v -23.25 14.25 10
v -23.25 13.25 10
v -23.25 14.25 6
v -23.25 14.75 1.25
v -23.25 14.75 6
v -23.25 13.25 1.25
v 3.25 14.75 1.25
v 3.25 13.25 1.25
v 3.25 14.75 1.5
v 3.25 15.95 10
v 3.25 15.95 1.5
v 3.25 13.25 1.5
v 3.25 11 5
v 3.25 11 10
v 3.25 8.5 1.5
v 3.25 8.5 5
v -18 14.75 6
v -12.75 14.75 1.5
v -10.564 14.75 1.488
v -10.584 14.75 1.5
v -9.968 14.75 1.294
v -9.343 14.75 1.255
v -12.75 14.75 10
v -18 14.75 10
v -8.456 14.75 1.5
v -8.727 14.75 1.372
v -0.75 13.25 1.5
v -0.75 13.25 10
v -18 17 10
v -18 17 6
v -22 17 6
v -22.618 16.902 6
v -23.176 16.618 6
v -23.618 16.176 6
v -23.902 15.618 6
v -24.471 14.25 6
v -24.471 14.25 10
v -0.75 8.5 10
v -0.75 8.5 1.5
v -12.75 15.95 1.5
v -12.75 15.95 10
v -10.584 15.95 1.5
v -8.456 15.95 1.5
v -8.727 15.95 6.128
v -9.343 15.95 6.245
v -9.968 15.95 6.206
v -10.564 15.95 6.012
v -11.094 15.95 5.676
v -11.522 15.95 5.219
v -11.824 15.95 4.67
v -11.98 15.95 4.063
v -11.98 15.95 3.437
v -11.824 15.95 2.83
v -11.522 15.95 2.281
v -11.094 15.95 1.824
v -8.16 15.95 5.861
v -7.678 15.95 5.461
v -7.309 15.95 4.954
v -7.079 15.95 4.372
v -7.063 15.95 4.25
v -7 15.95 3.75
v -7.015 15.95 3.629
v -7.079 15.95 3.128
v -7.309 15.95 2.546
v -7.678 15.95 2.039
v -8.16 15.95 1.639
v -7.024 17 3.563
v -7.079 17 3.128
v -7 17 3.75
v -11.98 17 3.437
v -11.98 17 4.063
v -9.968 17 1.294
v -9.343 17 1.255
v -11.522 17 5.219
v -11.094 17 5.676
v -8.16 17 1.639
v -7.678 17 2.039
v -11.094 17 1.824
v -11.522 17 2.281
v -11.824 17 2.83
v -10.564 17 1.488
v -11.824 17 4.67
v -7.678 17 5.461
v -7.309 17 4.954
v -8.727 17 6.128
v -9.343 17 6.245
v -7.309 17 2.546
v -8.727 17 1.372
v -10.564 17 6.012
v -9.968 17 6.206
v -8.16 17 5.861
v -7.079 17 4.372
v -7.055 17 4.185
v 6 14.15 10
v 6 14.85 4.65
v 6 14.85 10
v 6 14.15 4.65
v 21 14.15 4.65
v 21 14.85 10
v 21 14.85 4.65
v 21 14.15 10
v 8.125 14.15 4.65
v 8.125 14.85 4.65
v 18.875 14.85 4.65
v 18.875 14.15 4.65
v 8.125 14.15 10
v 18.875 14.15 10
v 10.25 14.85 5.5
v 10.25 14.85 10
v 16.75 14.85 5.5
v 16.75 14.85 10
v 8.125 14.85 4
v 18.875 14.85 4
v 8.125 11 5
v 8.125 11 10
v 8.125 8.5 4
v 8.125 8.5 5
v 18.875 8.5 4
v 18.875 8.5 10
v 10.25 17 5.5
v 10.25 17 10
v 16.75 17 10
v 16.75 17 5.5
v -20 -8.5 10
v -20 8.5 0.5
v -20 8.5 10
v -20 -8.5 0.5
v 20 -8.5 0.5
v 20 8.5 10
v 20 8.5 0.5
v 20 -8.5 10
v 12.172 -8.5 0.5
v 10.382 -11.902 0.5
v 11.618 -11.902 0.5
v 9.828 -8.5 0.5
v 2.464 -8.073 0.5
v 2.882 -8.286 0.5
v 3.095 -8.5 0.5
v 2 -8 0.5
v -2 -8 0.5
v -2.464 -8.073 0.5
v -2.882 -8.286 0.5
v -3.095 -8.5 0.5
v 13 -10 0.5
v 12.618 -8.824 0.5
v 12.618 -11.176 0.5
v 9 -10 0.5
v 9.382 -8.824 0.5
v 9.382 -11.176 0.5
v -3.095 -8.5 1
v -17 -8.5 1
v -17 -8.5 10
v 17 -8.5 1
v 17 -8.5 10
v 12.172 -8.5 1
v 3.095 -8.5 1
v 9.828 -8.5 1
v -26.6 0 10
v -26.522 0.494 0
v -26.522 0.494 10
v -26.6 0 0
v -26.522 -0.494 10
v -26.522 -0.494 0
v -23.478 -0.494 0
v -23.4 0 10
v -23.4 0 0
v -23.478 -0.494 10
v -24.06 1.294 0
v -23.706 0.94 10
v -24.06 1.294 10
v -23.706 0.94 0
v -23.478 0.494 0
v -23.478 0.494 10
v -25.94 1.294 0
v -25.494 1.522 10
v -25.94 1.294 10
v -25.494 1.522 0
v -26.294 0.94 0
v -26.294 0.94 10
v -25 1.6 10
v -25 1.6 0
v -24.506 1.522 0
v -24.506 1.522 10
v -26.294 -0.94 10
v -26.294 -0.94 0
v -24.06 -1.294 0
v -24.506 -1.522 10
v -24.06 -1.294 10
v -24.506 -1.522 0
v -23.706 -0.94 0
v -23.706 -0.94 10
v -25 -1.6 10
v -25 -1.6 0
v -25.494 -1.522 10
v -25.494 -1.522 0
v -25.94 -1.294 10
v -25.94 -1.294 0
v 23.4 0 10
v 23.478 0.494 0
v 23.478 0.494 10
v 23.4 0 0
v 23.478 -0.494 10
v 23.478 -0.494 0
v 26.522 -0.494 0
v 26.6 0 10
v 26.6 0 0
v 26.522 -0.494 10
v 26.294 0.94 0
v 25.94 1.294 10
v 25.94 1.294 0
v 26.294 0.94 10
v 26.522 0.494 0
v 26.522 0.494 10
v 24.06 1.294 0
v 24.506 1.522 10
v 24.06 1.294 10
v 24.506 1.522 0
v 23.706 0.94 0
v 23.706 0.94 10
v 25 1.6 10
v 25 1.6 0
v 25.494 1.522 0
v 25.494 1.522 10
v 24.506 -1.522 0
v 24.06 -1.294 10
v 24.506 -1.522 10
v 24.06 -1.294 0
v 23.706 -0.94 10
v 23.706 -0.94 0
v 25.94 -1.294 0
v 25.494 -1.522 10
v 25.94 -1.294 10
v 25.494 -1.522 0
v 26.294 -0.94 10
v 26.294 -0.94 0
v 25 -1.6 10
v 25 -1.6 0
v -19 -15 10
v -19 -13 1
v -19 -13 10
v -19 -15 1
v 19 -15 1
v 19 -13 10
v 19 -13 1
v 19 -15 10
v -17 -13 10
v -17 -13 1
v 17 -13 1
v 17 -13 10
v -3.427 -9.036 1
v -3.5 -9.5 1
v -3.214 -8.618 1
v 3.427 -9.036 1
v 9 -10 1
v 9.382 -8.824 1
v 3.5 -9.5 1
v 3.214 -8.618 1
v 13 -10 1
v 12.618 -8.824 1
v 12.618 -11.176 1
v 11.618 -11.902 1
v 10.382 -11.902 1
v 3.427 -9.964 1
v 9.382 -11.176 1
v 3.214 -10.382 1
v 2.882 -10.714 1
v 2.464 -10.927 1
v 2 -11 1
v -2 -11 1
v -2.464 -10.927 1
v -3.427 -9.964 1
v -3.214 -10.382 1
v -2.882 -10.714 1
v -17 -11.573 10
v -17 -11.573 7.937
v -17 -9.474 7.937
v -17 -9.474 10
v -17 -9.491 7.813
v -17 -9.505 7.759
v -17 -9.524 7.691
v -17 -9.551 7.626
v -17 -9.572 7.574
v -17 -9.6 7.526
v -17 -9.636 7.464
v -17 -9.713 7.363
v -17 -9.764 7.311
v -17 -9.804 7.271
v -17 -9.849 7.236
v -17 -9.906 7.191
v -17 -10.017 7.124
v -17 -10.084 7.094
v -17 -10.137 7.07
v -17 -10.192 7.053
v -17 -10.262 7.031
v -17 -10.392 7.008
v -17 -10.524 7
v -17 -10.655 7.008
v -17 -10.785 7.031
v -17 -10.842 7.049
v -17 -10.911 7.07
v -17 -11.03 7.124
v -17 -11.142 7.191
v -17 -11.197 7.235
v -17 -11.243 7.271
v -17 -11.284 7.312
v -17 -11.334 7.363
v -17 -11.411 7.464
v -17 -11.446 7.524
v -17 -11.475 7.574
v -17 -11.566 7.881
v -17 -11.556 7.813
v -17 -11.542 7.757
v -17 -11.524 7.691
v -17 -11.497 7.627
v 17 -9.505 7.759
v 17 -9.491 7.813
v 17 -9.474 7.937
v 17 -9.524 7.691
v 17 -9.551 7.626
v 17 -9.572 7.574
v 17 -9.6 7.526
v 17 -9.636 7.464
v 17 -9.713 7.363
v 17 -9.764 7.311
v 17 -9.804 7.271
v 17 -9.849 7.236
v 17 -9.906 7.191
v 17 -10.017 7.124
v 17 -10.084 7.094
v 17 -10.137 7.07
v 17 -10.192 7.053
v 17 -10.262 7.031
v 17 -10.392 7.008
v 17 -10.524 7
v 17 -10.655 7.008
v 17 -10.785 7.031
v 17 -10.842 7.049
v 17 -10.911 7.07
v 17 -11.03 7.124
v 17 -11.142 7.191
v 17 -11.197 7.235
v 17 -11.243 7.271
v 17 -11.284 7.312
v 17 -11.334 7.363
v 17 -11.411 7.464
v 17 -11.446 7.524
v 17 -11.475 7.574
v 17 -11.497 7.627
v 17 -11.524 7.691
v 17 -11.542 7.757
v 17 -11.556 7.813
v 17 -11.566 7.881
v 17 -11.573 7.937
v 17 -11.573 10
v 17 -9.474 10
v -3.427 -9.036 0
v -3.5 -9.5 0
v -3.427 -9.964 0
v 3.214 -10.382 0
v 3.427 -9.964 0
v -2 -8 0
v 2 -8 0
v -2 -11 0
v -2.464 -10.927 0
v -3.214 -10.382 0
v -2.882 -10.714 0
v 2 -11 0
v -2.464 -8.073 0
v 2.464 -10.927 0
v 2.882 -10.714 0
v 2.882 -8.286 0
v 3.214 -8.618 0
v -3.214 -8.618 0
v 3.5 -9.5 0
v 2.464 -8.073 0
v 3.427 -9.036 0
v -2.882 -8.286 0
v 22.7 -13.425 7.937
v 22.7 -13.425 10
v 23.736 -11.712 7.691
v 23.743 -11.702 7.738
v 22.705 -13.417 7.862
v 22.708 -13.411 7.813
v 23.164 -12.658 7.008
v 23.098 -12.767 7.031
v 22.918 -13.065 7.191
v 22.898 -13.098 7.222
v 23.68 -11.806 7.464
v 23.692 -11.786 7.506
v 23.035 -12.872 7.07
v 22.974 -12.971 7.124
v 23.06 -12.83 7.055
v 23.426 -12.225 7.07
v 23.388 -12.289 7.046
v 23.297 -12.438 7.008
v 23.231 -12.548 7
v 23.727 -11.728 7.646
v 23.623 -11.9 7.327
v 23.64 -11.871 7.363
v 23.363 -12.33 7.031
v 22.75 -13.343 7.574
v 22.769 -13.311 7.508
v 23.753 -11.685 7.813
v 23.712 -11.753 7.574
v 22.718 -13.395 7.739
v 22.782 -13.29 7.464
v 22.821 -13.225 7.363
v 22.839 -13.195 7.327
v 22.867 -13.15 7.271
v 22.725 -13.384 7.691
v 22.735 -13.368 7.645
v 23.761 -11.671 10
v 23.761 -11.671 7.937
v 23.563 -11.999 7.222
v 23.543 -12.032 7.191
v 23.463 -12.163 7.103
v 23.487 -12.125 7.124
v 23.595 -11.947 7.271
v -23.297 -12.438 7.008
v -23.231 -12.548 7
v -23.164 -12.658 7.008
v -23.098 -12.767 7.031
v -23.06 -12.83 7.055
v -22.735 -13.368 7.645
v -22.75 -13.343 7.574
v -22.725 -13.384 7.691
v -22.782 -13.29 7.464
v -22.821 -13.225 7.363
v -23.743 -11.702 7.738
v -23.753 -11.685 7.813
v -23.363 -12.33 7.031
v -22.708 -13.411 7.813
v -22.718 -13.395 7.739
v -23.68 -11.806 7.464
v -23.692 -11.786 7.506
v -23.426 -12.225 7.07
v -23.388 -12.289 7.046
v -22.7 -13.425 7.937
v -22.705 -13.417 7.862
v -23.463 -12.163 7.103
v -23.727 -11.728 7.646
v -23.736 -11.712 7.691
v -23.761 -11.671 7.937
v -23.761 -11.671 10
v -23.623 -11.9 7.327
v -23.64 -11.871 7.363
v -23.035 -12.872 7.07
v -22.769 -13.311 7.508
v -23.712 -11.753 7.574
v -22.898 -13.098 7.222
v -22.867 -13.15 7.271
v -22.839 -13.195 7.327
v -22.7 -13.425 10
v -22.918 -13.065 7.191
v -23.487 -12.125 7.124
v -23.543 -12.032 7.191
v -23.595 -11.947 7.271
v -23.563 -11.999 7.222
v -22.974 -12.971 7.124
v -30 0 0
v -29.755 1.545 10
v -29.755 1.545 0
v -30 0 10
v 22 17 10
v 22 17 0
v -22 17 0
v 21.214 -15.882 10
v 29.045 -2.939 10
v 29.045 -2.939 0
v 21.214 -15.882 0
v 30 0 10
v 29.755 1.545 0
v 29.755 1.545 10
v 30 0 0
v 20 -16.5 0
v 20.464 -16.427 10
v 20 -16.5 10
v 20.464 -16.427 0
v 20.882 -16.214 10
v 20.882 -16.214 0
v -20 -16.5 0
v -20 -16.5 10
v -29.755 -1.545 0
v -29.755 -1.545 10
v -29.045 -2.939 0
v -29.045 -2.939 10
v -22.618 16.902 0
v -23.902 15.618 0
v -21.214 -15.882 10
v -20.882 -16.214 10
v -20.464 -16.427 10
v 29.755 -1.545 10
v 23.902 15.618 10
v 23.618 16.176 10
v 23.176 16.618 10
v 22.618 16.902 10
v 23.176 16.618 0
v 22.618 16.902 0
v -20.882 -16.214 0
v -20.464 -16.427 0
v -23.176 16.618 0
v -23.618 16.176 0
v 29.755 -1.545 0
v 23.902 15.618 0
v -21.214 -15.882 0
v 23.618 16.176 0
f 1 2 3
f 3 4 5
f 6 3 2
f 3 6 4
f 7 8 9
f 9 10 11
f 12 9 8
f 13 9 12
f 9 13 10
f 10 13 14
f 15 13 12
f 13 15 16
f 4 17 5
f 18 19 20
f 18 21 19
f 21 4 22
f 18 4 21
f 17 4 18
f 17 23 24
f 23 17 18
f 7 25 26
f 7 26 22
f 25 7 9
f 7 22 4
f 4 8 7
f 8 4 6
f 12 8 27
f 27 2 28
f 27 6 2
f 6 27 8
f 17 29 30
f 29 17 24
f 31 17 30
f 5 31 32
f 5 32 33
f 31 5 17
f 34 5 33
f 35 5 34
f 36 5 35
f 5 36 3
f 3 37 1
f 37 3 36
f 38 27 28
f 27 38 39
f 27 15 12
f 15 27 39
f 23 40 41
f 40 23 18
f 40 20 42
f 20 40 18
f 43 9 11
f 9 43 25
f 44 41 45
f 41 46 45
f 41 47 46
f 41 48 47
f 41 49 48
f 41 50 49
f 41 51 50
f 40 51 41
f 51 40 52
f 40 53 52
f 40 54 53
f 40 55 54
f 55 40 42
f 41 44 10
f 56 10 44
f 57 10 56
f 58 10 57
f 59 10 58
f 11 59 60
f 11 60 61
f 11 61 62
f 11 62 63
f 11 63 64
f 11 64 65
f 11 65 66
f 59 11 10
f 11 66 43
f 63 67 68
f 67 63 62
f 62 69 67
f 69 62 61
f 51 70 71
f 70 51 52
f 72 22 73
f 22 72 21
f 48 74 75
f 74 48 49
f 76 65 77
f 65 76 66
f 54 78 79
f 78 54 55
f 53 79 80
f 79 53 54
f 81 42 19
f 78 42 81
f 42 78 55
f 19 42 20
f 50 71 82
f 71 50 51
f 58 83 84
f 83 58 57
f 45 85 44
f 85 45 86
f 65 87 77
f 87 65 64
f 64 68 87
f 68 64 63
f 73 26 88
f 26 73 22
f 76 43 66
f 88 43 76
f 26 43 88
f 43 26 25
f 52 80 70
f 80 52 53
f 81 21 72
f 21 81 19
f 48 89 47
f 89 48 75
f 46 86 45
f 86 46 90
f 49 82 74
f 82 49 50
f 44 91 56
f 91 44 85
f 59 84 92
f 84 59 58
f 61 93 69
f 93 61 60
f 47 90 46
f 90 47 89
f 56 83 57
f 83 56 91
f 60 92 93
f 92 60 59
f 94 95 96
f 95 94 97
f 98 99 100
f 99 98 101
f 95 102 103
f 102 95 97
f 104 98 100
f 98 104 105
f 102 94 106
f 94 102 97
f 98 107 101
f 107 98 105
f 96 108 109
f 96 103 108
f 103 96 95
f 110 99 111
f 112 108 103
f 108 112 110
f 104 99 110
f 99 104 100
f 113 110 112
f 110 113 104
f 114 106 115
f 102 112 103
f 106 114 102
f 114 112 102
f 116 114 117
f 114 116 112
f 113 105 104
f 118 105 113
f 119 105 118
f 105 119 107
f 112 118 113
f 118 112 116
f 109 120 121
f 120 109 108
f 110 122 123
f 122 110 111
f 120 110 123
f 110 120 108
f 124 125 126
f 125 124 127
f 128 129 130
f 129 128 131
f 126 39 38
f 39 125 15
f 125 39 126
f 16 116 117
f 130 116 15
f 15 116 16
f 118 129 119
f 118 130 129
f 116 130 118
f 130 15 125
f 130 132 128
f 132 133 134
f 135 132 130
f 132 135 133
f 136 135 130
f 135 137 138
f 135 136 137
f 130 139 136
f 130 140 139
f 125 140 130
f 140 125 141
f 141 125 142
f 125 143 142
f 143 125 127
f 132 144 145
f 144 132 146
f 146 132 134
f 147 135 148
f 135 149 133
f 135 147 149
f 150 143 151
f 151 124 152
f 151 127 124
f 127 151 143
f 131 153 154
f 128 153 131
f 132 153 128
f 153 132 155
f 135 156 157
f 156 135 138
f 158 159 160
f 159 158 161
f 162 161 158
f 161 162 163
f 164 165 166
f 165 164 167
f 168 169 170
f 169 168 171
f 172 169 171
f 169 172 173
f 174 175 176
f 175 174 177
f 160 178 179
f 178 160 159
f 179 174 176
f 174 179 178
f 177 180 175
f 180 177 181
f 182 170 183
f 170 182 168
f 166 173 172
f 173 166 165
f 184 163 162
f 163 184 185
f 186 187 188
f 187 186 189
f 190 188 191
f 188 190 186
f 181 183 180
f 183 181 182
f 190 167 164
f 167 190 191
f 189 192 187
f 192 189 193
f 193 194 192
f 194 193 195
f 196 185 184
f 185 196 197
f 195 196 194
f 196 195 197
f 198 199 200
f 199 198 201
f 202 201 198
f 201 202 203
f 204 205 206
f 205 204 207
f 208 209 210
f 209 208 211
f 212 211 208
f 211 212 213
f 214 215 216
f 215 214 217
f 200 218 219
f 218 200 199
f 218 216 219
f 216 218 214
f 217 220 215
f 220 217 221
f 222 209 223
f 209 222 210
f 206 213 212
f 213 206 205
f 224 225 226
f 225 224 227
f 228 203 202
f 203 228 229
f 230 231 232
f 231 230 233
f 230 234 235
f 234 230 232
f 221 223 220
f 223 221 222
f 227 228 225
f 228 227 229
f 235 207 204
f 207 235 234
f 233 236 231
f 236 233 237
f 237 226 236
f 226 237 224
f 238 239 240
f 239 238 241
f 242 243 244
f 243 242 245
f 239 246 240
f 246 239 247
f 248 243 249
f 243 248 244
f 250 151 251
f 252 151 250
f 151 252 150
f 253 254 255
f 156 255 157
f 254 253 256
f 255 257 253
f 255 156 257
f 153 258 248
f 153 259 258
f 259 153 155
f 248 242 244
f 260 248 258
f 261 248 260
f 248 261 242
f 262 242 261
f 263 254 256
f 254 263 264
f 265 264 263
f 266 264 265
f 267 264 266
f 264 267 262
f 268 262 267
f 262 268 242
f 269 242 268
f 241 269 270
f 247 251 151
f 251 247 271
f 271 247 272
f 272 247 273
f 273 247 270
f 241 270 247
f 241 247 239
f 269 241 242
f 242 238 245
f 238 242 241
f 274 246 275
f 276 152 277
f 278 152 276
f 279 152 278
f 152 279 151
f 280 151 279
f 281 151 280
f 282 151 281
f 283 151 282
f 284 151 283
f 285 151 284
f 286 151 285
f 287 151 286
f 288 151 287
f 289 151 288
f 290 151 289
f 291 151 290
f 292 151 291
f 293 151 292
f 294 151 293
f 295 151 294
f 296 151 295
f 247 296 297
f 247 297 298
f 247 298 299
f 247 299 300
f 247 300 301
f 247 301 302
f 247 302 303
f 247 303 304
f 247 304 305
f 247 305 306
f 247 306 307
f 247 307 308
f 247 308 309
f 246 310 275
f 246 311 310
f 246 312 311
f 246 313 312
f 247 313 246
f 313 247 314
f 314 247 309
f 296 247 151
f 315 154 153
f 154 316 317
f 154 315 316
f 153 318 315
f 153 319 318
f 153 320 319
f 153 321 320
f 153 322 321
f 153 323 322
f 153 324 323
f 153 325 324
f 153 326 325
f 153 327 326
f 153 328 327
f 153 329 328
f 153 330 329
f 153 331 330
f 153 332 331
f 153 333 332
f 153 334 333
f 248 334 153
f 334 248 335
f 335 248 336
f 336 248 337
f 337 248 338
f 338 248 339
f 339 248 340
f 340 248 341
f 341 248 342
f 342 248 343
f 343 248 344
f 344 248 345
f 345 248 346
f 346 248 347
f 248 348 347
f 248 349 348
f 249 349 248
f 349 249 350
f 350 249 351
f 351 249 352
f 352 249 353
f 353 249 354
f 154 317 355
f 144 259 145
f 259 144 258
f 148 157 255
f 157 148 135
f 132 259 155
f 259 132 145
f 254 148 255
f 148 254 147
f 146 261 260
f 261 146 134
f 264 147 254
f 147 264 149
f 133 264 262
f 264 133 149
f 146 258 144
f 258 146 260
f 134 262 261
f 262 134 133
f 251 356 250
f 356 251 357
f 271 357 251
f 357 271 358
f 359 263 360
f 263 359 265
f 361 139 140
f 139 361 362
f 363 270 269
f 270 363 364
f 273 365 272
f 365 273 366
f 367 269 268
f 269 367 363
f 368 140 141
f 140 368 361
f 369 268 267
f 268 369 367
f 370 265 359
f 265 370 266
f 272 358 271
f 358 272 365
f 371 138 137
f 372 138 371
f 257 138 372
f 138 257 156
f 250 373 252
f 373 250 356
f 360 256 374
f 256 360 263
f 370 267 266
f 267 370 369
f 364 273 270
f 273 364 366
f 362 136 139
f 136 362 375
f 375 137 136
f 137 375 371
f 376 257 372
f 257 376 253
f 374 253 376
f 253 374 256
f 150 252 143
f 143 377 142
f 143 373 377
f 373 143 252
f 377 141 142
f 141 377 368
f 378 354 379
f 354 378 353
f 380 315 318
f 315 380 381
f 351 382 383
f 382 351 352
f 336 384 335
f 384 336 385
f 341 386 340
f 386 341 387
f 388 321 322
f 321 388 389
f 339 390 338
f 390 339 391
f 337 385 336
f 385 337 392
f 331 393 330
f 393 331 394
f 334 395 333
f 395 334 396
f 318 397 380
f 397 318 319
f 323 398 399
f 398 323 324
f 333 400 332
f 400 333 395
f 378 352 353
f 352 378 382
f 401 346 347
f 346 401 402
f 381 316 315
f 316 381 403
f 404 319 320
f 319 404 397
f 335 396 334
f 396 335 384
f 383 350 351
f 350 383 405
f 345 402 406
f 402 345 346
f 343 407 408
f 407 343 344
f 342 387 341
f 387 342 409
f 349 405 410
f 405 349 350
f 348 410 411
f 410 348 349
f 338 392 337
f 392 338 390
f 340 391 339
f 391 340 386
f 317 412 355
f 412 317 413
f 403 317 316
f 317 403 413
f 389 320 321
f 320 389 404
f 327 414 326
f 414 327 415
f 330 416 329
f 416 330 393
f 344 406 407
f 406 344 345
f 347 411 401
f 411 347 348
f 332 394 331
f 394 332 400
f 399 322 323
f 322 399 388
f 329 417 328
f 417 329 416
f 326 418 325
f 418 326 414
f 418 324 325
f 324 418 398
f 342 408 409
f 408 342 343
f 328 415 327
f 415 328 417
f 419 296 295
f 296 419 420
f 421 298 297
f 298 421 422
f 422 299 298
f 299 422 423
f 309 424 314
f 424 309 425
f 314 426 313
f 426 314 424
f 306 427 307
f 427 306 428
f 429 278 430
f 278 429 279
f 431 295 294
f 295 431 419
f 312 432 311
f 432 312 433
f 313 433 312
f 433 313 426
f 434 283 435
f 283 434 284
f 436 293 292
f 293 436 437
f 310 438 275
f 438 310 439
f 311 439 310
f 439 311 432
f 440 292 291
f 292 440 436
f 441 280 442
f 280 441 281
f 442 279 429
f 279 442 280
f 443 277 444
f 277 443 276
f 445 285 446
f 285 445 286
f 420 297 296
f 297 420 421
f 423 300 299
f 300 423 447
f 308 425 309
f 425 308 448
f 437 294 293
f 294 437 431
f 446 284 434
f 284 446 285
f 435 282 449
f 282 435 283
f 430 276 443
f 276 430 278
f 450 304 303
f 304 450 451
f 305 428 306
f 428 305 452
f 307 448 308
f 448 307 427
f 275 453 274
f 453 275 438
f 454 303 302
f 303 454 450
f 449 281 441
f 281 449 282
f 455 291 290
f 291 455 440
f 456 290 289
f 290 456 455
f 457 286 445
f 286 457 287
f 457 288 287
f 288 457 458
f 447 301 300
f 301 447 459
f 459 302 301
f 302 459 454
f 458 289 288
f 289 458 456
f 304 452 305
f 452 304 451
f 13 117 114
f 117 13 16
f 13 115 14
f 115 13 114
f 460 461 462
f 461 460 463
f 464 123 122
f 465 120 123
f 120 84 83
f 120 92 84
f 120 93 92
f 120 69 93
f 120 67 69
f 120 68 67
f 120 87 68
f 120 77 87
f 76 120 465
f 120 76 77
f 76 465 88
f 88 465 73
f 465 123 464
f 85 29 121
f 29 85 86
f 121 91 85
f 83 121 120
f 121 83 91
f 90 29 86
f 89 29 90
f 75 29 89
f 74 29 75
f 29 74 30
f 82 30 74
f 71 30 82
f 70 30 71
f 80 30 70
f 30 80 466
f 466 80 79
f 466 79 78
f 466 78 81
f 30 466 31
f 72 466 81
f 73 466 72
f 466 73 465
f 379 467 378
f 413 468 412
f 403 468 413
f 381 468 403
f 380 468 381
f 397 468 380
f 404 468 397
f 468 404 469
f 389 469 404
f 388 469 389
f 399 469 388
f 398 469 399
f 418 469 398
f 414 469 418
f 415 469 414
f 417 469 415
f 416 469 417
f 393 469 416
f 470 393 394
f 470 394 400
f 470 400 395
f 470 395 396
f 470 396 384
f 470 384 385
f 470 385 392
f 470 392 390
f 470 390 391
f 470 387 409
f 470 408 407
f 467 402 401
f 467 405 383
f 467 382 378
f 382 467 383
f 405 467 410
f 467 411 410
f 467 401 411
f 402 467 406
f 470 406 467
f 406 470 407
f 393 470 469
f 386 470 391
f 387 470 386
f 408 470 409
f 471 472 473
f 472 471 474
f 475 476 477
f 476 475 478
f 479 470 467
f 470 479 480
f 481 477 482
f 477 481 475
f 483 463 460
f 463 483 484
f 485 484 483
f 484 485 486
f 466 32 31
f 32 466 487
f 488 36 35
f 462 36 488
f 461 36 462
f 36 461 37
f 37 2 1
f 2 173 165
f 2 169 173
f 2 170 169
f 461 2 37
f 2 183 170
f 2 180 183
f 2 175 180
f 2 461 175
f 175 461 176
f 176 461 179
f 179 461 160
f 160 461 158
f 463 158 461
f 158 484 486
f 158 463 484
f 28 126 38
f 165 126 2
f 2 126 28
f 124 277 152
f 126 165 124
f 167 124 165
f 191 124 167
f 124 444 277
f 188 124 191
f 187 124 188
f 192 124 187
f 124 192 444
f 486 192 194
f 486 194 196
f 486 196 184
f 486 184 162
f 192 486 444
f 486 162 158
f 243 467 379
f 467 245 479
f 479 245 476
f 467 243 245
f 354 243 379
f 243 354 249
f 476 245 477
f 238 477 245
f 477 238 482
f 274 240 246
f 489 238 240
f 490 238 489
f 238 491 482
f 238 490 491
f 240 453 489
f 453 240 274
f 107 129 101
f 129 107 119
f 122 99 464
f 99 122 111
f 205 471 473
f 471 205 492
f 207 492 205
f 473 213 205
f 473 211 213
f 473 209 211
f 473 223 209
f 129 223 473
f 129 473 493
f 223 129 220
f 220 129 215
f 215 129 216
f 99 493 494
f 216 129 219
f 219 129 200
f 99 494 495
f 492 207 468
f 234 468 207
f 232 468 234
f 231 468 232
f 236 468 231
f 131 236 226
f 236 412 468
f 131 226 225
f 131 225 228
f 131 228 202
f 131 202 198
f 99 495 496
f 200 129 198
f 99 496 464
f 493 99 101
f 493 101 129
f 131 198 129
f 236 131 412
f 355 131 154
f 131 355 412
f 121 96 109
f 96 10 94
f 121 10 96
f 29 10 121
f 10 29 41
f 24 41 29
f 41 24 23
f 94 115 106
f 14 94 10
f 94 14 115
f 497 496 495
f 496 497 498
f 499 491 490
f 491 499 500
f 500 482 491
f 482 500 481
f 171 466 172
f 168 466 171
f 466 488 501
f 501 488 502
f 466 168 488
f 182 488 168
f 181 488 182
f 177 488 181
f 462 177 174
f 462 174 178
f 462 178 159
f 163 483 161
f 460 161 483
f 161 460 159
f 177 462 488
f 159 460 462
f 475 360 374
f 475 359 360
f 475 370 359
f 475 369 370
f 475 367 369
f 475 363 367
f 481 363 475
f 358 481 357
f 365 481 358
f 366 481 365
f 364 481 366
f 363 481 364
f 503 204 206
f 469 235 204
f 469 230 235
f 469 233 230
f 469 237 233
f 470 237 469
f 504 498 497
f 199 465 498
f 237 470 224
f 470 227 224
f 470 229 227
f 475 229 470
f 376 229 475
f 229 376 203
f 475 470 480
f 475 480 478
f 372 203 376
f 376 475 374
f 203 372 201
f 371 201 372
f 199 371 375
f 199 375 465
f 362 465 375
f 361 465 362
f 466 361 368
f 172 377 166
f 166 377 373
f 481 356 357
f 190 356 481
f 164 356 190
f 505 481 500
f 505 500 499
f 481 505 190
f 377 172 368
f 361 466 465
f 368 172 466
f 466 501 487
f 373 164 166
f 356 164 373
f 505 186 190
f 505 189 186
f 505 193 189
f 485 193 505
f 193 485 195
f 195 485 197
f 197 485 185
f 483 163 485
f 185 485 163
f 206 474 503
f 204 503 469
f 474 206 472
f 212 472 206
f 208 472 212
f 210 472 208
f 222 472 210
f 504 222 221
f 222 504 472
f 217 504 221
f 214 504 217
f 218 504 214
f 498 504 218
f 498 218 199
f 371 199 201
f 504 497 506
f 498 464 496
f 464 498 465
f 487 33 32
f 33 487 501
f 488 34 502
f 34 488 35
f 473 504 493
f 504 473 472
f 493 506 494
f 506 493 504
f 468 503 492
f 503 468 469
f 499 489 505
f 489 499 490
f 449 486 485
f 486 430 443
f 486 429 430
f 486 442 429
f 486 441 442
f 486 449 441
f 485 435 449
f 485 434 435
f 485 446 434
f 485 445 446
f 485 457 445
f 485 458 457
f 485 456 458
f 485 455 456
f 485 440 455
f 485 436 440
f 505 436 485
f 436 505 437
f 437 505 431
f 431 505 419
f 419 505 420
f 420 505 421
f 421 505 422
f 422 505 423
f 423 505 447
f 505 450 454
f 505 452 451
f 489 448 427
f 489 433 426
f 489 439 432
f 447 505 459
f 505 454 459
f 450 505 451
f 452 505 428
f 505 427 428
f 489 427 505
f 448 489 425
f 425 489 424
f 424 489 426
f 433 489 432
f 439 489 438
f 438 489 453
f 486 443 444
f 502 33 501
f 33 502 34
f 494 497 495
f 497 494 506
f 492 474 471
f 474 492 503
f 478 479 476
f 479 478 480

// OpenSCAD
difference()
{
    hull()
    {
        translate([-25, 0, 0])cylinder(d = 10, h = 10,$fn = 20);
        translate([25, 0, 0])cylinder(d = 10, h = 10,$fn = 20);
        translate([-22, 15, 0])cylinder(d = 4, h = 10,$fn = 20);
        translate([22, 15, 0])cylinder(d = 4, h = 10,$fn = 20);
        translate([-20, -15, 0])cylinder(d = 3, h = 10,$fn = 20);
        translate([20, -15, 0])cylinder(d = 3, h = 10,$fn = 20);
    }

union()
    {
        translate([0 ,0 ,9])cube([40,17,17],center = true);
        //translate([0 ,0 ,9])rotate([0,90,0])cylinder(d = 17, h = 38, center = true);//batería redonda
        translate([-25, 0, -1])cylinder(d = 3.2, h = 50,$fn = 20);  //hueco tornillo
        translate([25, 0, -1])cylinder(d = 3.2, h = 50,$fn = 20);   //hueco tornillo
        translate([0, -14, 10])cube([38,2,18], center = true);//placa booster
        translate([0, -7, 10])cube([34,14,18], center = true);//hueco booster
        translate([11,-10,0.5])cylinder(d = 4,h =5, $fn =10);// hueco tornillo regulador booster
        hull()//hueco cables base
        {
            translate([-2,-9.5,-1])cylinder(d = 3,h =5, $fn =20);
            translate([2,-9.5,-1])cylinder(d = 3,h =5, $fn =20);
        }
        hull()// registro lateral para cables
        {
            translate([0,-5,8])rotate([18,90,0])cylinder(d=2,h = 40, $fn = 50);
            translate([0,-5,11])rotate([18,90,0])cylinder(d=2,h = 40, $fn = 50);
        }
        mirror([1, 0, 0])hull()// registro lateral para cables
        {
            translate([0,-5,8])rotate([18,90,0])cylinder(d=2,h = 40, $fn = 50);
            translate([0,-5,11])rotate([18,90,0])cylinder(d=2,h = 40, $fn = 50);
        }
        translate([8,6,10])cube([10,10,10],center = true);
        translate([-10, 14, 10])cargador();
        translate([13.5,14.5,7])interruptor();
    }
}

//cargador(); 

module cargador()
{
    cube([26.5, 1.5,17.5], center = true); // placa cargador
    translate([-13, 2, 0]) cube([10,3.5,8],center = true); //usb cargador
    translate([11.25, -5, 0])cube([4,10,17],center = true);
    translate([5.25, 1.2, 0])cube([16,1.5,17],center = true);
    translate([0.5, 0, -6.25])rotate([-90,0,0])cylinder(h = 10, d = 5, $fn = 25);
    
}


//interruptor();
module interruptor()
{
    translate([0,0,1.5])cube([15, 0.7, 7.7], center = true);//plancha
    translate([0,-5,1])cube([10.75, 10.7, 8], center = true);//cuerpo
    translate([0,5,2])cube([6.5, 10,7],center = true);//
}
